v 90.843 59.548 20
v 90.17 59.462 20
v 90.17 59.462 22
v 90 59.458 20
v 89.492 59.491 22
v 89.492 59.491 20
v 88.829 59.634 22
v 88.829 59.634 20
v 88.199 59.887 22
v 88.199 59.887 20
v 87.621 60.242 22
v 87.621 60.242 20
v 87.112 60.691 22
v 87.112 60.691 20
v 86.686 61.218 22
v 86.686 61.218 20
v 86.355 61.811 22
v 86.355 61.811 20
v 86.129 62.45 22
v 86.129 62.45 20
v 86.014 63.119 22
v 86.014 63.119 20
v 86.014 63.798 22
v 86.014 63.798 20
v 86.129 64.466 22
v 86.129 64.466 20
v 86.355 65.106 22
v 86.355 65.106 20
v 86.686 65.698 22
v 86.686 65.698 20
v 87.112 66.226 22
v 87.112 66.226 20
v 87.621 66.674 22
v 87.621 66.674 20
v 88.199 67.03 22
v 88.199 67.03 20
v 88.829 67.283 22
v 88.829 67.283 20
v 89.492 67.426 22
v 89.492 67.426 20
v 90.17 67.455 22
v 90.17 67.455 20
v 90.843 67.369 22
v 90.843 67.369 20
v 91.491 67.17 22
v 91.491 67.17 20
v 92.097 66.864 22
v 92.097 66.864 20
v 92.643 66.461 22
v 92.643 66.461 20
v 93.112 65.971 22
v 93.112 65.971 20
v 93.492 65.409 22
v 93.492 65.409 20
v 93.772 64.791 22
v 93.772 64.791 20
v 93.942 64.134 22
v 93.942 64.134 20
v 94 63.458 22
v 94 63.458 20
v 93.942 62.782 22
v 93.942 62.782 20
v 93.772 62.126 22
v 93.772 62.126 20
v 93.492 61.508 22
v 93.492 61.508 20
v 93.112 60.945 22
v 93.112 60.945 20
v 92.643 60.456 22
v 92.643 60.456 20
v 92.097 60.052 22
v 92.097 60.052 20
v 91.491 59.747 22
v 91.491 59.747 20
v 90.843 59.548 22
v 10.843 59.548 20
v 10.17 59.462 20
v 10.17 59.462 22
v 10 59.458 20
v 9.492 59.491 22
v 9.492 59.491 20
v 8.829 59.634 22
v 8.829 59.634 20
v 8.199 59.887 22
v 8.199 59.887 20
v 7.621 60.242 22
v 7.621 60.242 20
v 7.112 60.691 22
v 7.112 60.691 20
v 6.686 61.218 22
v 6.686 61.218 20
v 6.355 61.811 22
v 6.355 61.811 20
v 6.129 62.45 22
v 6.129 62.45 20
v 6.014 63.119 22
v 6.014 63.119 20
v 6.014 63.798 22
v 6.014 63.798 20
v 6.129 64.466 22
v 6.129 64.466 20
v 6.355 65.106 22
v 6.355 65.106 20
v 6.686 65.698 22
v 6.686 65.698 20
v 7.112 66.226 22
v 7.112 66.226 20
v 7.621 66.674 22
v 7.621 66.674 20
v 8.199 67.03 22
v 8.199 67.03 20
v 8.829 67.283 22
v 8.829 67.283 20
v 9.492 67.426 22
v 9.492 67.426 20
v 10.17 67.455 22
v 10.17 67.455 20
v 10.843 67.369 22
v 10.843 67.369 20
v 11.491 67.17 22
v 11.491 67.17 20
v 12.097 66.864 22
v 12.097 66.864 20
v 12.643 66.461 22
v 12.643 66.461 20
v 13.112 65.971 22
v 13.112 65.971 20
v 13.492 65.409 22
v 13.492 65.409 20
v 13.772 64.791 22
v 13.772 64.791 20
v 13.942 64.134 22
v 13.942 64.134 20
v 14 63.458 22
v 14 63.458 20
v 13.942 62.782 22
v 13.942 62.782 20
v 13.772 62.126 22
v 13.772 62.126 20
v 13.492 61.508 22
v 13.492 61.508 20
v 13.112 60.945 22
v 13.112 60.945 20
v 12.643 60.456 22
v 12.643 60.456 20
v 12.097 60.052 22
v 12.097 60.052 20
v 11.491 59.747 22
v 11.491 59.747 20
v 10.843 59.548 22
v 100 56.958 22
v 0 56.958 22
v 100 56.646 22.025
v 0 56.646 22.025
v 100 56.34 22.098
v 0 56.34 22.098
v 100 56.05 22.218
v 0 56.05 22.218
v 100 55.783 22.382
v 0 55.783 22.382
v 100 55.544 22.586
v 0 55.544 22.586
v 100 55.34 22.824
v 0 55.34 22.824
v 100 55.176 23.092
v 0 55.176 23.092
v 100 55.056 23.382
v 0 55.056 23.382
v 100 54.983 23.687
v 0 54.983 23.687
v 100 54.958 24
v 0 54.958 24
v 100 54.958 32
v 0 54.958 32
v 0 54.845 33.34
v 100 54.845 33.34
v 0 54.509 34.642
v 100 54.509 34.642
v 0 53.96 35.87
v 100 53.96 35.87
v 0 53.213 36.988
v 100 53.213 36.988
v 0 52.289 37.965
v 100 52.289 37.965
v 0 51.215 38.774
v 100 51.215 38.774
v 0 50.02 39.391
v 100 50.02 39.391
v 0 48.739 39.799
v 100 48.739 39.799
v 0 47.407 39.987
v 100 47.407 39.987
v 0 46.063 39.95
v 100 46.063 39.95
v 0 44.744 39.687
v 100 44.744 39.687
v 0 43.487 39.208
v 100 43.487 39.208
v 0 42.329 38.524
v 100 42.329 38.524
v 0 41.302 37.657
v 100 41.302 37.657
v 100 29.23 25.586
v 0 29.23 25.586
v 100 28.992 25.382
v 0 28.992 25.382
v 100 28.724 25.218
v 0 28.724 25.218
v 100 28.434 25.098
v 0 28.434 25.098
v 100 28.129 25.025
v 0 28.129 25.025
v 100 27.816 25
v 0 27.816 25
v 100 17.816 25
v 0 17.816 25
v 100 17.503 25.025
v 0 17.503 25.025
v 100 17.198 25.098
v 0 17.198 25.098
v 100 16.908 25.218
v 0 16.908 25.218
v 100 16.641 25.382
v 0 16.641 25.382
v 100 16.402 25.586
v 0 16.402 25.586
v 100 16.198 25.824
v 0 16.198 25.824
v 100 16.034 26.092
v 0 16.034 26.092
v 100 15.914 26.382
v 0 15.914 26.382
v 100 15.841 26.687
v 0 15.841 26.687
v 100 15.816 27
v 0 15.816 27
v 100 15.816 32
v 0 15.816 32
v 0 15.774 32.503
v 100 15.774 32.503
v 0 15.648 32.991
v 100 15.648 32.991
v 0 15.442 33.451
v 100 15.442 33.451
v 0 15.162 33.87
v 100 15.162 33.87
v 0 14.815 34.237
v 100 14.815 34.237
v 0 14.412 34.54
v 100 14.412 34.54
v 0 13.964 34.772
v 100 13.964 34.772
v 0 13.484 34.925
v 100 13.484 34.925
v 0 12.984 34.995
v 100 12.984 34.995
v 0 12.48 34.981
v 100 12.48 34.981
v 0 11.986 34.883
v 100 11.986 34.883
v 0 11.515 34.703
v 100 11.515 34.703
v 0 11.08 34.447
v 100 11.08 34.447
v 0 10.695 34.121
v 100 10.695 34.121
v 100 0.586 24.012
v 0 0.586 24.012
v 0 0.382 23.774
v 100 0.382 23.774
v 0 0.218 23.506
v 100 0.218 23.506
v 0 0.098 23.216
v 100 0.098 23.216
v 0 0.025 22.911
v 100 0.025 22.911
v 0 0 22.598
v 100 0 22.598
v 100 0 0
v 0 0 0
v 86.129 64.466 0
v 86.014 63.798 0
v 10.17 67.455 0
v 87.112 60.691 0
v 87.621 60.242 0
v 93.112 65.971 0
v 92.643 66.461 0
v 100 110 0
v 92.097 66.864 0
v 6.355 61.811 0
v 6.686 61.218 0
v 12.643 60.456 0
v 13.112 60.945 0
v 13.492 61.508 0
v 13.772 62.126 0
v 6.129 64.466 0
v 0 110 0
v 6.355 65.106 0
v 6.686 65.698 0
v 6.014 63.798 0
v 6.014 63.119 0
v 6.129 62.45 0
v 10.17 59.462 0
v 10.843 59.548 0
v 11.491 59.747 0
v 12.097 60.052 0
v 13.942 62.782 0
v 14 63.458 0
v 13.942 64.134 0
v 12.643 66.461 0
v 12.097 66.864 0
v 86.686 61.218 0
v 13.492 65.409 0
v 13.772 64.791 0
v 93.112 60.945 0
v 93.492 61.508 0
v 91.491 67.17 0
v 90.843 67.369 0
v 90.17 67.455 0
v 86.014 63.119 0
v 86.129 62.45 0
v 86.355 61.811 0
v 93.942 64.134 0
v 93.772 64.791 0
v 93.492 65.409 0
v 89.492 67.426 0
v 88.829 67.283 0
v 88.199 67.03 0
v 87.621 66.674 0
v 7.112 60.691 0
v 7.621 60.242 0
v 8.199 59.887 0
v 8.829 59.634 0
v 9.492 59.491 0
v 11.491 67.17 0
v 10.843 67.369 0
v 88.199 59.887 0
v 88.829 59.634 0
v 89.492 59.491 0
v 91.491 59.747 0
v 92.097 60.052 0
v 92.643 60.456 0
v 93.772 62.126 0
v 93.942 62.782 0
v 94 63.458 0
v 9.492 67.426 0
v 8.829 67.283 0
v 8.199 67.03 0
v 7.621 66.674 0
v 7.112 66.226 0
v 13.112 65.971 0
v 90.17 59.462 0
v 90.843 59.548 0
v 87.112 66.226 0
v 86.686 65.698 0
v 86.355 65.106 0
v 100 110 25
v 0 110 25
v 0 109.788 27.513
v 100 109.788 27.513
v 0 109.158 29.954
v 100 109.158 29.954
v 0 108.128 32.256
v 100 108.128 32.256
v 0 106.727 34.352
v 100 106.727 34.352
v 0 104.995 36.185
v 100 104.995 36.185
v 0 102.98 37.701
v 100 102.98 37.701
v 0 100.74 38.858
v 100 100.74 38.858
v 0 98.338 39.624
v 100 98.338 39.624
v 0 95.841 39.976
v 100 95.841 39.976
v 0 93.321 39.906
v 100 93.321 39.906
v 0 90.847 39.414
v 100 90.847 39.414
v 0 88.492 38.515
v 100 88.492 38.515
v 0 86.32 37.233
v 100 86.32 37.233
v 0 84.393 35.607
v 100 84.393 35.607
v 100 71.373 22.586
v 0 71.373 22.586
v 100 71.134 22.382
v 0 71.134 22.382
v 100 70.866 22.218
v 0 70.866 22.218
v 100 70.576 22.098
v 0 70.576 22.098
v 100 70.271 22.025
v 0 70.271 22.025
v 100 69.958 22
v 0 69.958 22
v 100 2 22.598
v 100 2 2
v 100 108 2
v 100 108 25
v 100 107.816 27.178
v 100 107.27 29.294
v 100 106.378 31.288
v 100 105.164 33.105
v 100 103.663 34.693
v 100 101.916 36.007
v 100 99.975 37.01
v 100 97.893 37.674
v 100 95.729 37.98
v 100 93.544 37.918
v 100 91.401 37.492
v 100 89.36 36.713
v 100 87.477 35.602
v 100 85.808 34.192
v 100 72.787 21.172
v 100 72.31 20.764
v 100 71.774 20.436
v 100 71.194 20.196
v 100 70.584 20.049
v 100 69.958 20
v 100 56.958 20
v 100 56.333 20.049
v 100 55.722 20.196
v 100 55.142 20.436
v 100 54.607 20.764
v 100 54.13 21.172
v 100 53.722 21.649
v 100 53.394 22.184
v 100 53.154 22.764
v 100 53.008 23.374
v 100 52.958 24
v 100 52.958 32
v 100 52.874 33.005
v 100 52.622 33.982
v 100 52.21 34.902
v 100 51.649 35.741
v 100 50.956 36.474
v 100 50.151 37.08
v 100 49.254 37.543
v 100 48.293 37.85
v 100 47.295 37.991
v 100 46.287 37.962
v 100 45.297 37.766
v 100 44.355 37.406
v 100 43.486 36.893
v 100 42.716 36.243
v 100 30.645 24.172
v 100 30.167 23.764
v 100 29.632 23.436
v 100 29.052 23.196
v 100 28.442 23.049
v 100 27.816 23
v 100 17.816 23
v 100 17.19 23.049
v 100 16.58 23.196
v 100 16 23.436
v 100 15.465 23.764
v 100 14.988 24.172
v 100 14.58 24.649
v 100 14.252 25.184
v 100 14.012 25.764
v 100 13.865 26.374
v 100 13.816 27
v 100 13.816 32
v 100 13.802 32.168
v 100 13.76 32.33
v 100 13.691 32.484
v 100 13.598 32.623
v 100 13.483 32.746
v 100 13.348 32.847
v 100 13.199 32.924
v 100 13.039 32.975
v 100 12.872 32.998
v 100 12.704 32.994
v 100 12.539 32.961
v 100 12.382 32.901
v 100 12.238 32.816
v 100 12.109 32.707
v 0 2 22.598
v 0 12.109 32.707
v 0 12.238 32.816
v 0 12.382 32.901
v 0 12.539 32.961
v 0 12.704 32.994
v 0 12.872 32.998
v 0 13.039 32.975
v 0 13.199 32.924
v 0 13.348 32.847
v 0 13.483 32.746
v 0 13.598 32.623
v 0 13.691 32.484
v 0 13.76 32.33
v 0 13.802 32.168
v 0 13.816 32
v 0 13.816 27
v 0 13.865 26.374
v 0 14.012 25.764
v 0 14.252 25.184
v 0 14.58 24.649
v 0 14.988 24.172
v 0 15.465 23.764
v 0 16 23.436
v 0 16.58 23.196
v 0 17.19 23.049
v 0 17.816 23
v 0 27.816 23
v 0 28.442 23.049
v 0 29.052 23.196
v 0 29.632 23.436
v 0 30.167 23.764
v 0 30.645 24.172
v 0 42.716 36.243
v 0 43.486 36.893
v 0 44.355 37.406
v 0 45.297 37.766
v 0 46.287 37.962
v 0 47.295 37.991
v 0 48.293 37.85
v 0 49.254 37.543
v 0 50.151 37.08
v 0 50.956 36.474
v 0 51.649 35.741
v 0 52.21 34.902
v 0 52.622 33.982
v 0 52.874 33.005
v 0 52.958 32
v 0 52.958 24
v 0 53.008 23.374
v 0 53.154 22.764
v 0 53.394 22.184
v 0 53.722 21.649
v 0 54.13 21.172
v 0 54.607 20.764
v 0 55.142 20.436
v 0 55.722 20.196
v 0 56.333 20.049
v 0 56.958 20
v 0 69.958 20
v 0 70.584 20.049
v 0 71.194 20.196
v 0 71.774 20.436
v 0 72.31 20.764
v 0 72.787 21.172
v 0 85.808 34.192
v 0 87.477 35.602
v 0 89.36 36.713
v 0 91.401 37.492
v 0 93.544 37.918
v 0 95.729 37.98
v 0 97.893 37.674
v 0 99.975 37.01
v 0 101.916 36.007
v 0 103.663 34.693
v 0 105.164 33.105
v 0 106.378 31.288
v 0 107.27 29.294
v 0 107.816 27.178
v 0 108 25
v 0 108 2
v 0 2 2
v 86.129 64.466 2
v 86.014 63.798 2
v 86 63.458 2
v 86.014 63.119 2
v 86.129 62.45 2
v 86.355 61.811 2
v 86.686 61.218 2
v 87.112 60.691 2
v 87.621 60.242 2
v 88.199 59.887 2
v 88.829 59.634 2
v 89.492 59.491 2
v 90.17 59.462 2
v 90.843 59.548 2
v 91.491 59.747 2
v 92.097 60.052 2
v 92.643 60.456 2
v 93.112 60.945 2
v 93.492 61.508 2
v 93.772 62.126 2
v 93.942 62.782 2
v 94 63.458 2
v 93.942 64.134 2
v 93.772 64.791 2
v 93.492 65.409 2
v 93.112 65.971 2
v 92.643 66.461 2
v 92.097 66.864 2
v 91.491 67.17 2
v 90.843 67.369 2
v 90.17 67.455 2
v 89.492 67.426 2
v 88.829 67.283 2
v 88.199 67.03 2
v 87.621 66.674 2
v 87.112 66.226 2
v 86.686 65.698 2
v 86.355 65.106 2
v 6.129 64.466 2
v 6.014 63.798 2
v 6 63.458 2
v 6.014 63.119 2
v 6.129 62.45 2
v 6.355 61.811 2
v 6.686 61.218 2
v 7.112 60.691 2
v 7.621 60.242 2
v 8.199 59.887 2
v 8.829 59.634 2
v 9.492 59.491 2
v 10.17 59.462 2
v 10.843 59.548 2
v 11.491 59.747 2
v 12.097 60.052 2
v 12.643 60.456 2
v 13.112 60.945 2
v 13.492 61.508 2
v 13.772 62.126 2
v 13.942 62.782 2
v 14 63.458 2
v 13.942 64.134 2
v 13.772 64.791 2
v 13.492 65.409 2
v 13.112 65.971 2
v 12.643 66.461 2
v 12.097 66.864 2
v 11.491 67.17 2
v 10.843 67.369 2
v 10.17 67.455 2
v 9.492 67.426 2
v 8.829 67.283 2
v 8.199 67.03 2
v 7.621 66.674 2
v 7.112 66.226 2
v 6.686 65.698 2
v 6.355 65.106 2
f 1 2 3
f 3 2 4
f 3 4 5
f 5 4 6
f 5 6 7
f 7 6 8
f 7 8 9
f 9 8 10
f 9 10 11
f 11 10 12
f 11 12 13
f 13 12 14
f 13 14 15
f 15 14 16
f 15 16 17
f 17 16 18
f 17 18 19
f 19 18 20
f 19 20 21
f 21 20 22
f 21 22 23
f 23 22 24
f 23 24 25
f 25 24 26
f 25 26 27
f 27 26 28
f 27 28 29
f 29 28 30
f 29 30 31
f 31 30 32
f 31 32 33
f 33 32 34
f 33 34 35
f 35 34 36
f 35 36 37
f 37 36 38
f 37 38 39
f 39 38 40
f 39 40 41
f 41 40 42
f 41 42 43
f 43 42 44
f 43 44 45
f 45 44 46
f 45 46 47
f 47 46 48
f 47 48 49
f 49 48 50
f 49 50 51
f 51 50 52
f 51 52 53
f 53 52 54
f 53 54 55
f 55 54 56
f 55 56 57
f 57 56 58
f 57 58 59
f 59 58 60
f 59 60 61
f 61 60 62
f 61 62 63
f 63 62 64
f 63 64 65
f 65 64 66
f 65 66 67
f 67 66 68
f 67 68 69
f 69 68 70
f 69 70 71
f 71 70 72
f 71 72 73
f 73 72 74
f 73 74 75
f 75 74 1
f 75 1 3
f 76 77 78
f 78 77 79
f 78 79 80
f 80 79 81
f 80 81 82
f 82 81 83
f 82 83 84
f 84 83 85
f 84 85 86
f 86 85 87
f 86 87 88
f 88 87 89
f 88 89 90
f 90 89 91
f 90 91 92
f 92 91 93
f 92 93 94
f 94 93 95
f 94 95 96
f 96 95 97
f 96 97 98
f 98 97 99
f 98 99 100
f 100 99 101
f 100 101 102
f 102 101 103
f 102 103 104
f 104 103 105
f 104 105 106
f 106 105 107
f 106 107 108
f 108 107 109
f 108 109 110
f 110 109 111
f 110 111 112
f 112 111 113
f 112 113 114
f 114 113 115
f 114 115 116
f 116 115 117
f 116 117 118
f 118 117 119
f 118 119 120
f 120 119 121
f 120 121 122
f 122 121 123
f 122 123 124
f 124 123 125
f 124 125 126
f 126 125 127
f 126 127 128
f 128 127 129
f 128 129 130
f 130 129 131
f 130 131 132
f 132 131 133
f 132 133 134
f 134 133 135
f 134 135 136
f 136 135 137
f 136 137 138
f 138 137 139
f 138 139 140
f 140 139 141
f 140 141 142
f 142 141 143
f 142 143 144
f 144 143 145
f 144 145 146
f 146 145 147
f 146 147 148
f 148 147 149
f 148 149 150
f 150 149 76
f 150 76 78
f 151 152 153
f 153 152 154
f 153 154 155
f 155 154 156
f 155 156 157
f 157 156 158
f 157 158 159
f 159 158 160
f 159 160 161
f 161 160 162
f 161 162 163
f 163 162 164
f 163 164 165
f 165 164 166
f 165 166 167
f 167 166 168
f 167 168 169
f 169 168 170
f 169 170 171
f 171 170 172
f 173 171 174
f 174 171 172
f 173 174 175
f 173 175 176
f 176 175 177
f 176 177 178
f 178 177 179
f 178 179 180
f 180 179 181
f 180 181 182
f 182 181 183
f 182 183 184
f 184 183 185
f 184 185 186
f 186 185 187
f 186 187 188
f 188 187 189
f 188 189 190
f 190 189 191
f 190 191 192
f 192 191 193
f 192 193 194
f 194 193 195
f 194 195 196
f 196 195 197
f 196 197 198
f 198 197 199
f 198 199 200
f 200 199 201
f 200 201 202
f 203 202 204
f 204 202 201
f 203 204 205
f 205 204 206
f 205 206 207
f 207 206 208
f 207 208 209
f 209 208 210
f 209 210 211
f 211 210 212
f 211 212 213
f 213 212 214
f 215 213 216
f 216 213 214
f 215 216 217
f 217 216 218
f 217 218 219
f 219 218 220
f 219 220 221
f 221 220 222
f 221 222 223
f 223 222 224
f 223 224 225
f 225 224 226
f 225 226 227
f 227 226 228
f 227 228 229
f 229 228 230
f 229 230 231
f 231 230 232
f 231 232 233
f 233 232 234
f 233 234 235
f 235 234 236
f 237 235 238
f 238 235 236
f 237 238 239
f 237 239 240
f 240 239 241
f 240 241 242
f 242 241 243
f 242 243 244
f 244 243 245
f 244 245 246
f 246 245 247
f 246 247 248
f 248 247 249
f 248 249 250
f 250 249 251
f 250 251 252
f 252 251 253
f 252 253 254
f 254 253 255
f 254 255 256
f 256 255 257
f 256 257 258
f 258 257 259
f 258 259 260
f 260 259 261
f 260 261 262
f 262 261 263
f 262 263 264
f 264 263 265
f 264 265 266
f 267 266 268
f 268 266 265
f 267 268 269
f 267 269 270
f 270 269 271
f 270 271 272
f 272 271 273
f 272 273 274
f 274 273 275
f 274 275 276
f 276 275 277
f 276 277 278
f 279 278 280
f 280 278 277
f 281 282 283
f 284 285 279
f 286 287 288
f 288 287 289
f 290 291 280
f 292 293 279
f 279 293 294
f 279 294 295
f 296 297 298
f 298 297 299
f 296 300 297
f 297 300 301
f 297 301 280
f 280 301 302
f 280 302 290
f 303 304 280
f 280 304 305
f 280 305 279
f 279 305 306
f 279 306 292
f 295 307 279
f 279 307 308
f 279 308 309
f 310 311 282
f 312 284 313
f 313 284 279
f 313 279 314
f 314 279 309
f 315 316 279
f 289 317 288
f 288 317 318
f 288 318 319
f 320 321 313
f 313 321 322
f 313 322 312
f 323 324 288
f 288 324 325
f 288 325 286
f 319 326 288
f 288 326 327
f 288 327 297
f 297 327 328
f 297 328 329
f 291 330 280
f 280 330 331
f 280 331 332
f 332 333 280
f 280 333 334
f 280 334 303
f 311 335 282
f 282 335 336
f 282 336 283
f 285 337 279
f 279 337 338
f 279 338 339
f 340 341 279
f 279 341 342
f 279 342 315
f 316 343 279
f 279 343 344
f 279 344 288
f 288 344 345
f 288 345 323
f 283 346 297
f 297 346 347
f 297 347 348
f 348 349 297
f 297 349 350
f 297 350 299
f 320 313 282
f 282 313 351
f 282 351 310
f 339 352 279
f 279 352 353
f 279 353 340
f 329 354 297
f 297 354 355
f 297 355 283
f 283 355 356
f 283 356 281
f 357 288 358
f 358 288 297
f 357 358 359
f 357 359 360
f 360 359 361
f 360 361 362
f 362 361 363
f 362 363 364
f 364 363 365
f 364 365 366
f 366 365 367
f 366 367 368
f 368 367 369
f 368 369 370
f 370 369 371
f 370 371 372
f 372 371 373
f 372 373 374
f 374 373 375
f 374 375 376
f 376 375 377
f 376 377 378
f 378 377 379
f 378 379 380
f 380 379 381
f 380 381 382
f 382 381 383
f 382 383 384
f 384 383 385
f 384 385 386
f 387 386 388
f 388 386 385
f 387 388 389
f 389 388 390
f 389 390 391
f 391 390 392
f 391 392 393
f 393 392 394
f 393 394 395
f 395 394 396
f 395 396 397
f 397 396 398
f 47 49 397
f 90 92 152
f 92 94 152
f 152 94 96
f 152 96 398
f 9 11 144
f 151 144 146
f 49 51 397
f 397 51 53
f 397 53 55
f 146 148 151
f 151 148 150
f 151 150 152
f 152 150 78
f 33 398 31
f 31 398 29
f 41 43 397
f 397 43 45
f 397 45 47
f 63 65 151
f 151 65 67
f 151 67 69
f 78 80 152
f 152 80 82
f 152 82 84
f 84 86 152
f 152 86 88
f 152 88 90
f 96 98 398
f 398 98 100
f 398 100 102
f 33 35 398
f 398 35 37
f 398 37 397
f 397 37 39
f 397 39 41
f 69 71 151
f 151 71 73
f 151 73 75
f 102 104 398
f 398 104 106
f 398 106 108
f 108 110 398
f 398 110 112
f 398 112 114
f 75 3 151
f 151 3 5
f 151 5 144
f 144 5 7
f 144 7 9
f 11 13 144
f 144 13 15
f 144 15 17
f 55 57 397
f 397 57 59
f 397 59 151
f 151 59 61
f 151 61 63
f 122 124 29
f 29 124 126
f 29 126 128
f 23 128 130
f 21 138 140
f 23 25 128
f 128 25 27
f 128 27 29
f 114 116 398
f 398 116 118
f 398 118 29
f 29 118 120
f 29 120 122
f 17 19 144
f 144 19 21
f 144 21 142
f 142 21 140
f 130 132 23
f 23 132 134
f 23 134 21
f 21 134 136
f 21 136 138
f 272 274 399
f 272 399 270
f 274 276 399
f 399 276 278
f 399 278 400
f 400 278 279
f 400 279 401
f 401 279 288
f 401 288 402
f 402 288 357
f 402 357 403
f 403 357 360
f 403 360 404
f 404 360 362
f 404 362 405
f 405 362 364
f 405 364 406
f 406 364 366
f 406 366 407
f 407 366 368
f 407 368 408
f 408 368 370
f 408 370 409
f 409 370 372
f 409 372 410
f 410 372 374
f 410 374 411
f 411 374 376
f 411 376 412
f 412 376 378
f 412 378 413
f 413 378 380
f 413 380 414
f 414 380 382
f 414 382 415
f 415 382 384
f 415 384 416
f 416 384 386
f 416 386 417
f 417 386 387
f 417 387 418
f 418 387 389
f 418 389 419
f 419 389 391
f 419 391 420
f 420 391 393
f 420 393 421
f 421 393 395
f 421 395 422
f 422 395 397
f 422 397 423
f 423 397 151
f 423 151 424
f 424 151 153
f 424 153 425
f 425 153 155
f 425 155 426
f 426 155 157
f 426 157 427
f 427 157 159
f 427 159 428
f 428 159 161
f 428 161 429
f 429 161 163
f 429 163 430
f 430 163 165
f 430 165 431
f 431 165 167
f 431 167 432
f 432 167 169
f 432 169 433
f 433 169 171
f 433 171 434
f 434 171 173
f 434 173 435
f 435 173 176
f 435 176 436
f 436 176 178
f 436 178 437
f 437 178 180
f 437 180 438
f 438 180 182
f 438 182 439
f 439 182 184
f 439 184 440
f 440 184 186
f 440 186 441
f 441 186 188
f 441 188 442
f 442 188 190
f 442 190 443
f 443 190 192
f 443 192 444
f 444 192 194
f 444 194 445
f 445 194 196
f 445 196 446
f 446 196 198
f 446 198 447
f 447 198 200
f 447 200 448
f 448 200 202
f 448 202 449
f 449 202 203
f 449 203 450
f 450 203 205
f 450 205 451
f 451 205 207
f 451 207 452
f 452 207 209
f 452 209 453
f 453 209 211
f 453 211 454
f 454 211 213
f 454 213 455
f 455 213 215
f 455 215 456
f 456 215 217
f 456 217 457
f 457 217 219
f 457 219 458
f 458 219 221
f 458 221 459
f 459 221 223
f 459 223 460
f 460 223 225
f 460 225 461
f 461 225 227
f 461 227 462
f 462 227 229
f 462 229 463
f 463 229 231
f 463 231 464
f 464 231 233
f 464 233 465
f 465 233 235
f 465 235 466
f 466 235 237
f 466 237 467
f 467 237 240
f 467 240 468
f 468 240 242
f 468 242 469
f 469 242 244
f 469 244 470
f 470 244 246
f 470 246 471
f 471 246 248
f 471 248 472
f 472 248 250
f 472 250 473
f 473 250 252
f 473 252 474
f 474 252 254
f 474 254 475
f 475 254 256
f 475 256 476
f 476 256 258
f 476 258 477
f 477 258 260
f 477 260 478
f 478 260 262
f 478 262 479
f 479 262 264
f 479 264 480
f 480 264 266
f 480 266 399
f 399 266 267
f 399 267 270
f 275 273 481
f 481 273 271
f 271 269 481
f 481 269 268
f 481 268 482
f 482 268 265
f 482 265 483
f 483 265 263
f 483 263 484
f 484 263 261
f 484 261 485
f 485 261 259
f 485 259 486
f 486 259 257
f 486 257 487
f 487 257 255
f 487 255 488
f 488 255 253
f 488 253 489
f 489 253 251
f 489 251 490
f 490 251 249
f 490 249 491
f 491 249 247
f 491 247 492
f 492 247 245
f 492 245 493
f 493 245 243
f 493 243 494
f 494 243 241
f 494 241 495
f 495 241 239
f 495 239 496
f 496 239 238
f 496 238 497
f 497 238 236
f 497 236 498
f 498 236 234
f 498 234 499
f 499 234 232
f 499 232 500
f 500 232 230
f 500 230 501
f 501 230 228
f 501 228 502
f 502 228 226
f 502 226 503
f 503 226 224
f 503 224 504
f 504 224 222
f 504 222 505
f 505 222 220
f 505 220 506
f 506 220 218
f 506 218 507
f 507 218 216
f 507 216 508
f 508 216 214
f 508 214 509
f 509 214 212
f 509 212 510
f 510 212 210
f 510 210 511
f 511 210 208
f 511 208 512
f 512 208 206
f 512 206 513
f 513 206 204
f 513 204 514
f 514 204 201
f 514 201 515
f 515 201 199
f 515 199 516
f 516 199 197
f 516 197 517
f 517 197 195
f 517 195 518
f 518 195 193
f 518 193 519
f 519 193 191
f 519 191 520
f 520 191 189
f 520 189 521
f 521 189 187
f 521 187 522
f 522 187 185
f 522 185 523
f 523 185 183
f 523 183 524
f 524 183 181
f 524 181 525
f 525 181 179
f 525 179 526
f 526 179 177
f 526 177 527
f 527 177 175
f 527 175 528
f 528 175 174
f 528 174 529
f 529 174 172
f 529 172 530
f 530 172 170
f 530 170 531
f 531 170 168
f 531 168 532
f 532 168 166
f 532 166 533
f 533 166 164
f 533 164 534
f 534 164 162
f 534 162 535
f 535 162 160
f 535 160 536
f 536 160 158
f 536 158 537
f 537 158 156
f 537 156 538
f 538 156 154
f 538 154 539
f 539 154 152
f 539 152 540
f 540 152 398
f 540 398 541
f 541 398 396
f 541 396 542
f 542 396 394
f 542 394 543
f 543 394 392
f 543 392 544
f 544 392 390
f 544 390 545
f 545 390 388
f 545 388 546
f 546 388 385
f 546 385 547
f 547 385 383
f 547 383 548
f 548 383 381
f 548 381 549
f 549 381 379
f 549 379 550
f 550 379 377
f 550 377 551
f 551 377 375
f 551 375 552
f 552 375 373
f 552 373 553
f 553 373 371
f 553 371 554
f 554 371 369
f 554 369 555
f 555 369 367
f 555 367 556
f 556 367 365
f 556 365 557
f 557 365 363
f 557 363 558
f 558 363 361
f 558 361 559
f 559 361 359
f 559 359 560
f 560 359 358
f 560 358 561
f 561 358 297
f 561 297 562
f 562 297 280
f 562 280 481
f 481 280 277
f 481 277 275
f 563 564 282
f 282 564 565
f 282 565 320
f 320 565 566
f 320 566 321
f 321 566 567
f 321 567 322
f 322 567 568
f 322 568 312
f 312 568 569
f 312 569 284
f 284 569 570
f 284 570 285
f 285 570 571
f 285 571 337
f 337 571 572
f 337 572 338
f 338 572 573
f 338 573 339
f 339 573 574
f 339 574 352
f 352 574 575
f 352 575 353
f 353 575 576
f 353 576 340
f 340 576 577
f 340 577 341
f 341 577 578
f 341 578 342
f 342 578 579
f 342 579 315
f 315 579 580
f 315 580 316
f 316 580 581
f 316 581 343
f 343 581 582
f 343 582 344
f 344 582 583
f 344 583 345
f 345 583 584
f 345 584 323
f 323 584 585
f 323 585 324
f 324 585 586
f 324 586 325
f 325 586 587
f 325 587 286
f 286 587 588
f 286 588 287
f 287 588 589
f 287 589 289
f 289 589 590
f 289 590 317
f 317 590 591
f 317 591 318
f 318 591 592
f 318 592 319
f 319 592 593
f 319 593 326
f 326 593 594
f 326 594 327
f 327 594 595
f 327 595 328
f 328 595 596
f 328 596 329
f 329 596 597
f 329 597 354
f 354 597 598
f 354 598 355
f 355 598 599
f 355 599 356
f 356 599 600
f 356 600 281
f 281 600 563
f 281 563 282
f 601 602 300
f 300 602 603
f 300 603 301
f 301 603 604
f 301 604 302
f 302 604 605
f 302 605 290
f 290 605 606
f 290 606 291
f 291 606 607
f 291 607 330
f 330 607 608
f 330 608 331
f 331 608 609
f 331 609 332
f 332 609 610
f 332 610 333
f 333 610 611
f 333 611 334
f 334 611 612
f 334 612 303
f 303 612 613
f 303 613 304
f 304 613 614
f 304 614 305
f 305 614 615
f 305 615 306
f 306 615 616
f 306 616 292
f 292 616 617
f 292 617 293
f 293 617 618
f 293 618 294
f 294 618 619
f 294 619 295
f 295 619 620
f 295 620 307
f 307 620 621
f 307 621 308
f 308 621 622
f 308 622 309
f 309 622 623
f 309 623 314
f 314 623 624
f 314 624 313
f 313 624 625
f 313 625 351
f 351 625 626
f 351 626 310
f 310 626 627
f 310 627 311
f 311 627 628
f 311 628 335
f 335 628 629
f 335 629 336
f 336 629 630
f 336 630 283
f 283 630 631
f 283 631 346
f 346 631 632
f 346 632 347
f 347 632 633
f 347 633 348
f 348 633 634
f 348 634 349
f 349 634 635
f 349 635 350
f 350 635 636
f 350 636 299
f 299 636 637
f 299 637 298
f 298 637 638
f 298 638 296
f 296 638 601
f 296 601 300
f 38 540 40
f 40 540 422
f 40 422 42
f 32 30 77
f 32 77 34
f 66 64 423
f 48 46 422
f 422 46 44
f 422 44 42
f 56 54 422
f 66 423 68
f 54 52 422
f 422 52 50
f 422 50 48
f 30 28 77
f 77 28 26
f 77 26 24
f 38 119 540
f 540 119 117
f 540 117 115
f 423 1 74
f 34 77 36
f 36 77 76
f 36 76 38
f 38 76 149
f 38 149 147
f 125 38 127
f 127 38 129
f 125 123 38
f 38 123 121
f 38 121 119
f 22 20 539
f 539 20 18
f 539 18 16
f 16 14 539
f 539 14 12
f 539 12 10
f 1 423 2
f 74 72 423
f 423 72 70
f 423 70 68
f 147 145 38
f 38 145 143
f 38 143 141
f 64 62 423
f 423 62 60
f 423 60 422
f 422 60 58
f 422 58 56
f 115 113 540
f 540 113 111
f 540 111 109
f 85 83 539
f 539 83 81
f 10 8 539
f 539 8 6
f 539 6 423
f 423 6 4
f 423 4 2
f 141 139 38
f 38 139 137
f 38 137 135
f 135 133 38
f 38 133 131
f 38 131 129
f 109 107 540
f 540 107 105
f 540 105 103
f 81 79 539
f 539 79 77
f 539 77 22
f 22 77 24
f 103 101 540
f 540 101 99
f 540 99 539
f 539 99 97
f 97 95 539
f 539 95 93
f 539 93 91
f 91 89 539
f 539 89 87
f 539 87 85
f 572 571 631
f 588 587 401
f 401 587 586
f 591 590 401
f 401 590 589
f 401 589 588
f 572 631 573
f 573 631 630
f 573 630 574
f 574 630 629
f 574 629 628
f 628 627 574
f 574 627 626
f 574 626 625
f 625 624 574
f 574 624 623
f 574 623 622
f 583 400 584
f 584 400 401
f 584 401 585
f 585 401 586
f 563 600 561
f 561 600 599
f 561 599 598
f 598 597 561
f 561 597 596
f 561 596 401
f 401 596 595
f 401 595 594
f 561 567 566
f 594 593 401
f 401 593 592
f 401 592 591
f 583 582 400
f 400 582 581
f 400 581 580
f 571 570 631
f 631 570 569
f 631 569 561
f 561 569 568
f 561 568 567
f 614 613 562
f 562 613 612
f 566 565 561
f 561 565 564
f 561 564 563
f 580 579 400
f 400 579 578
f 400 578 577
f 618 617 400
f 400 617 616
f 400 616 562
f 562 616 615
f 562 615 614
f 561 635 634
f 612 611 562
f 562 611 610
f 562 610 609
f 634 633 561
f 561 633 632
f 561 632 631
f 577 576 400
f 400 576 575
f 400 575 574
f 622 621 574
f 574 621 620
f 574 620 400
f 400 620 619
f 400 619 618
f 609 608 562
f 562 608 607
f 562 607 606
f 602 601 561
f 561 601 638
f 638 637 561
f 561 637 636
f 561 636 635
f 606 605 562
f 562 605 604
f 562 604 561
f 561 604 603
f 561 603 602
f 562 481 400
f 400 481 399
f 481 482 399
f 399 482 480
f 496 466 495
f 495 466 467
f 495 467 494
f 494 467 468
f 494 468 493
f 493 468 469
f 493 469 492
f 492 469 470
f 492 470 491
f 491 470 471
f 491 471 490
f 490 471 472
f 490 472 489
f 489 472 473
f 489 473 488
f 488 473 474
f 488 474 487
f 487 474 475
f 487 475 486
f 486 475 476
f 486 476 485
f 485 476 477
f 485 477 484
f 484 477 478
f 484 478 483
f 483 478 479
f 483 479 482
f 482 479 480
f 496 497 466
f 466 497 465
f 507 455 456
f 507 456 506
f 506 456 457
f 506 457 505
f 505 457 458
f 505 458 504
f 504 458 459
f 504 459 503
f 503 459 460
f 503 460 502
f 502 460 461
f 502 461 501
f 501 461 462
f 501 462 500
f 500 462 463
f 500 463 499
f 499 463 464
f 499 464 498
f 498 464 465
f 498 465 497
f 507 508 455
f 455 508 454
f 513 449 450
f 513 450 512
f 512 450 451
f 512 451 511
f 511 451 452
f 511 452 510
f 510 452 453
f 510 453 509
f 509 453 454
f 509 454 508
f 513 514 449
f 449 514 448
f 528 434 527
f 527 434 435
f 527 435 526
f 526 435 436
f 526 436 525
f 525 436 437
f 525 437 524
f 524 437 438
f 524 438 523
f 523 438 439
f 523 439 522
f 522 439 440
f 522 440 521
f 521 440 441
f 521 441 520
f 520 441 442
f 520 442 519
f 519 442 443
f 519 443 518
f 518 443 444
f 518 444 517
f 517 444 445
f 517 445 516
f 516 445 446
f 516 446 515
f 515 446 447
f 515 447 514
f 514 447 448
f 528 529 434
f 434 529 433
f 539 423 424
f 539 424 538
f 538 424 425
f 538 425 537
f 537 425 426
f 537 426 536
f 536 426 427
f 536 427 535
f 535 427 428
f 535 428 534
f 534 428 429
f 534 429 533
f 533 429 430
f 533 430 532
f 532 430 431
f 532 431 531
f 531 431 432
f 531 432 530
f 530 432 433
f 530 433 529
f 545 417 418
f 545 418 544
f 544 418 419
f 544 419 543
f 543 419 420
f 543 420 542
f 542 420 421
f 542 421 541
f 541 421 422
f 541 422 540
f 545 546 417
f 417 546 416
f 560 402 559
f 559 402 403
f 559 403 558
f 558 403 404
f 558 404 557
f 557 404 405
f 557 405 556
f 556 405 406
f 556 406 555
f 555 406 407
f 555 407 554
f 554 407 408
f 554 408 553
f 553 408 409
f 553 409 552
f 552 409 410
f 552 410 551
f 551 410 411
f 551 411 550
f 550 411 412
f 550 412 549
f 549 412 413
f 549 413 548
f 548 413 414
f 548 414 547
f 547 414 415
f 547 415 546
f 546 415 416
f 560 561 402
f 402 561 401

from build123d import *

# Parameters (mm, degrees)
SALIENTE_EXTRUIR1_DEPTH = 100
CROQUIS2_R              = 4
CORTAR_EXTRUIR1_DEPTH   = 23
CORTAR_EXTRUIR3_DEPTH   = 101


with BuildPart() as part:
    # Croquis1 → Saliente-Extruir1 (new body)
    with BuildSketch(Plane(origin=(0, 0, 0), x_dir=(0, 0, -1), z_dir=(1, 0, 0))):
        with BuildLine():
            Line((0, 0), (-22.597979746, 0))
            ThreePointArc((-22.597979746, 0), (-23.363346611, 0.152240935), (-24.012193309, 0.585786438))
            Line((-24.012193309, 0.585786438), (-34.121320344, 10.694913472))
            ThreePointArc((-34.121320344, 10.694913472), (-34.771638598, 13.964284113), (-32, 15.816233816))
            Line((-32, 15.816233816), (-27, 15.816233816))
            ThreePointArc((-27, 15.816233816), (-25.585786438, 16.402020254), (-25, 17.816233816))
            Line((-25, 17.816233816), (-25, 27.816233816))
            ThreePointArc((-25, 27.816233816), (-25.152240935, 28.581600681), (-25.585786438, 29.230447378))
            Line((-25.585786438, 29.230447378), (-37.656854249, 41.30151519))
            ThreePointArc((-37.656854249, 41.30151519), (-39.39103626, 50.019836899), (-32, 54.95836944))
            Line((-32, 54.95836944), (-24, 54.95836944))
            ThreePointArc((-24, 54.95836944), (-22.585786438, 55.544155877), (-22, 56.95836944))
            Line((-22, 56.95836944), (-22, 69.95836944))
            ThreePointArc((-22, 69.95836944), (-22.152240935, 70.723736304), (-22.585786438, 71.372583002))
            Line((-22.585786438, 71.372583002), (-35.606601718, 84.393398282))
            ThreePointArc((-35.606601718, 84.393398282), (-38.858192988, 100.740251485), (-25, 110))
            Line((-25, 110), (0, 110))
            Line((0, 110), (0, 0))
        make_face()
    extrude(amount=SALIENTE_EXTRUIR1_DEPTH)

    # Croquis2 → Cortar-Extruir1 (cut, through all)
    with BuildSketch(Plane.XY.offset(22)):
        with Locations((10, 63.45836944)):
            Circle(CROQUIS2_R)
        with Locations((90, 63.45836944)):
            Circle(CROQUIS2_R)
    extrude(amount=-CORTAR_EXTRUIR1_DEPTH, mode=Mode.SUBTRACT)

    # Croquis3 → Cortar-Extruir3 (cut, through all)
    with BuildSketch(Plane(origin=(100, 0, 0), x_dir=(0, 0, -1), z_dir=(1, 0, 0))):
        with BuildLine():
            Line((-24, 52.95836944), (-32, 52.95836944))
            ThreePointArc((-32, 52.95836944), (-37.543277195, 49.254470034), (-36.242640687, 42.715728753))
            Line((-36.242640687, 42.715728753), (-24.171572875, 30.644660941))
            ThreePointArc((-24.171572875, 30.644660941), (-23.30448187, 29.346967545), (-23, 27.816233816))
            Line((-23, 27.816233816), (-23, 17.816233816))
            ThreePointArc((-23, 17.816233816), (-24.171572875, 14.987806691), (-27, 13.816233816))
            Line((-27, 13.816233816), (-32, 13.816233816))
            ThreePointArc((-32, 13.816233816), (-32.923879533, 13.198917248), (-32.707106781, 12.109127035))
            Line((-32.707106781, 12.109127035), (-22.597979746, 2))
            Line((-22.597979746, 2), (-2, 2))
            Line((-2, 2), (-2, 108))
            Line((-2, 108), (-25, 108))
            ThreePointArc((-25, 108), (-37.010433923, 99.974884621), (-34.192388155, 85.807611845))
            Line((-34.192388155, 85.807611845), (-21.171572875, 72.786796564))
            ThreePointArc((-21.171572875, 72.786796564), (-20.30448187, 71.489103169), (-20, 69.95836944))
            Line((-20, 69.95836944), (-20, 56.95836944))
            ThreePointArc((-20, 56.95836944), (-21.171572875, 54.129942315), (-24, 52.95836944))
        make_face()
    extrude(amount=-CORTAR_EXTRUIR3_DEPTH, mode=Mode.SUBTRACT)


solid = part.part
